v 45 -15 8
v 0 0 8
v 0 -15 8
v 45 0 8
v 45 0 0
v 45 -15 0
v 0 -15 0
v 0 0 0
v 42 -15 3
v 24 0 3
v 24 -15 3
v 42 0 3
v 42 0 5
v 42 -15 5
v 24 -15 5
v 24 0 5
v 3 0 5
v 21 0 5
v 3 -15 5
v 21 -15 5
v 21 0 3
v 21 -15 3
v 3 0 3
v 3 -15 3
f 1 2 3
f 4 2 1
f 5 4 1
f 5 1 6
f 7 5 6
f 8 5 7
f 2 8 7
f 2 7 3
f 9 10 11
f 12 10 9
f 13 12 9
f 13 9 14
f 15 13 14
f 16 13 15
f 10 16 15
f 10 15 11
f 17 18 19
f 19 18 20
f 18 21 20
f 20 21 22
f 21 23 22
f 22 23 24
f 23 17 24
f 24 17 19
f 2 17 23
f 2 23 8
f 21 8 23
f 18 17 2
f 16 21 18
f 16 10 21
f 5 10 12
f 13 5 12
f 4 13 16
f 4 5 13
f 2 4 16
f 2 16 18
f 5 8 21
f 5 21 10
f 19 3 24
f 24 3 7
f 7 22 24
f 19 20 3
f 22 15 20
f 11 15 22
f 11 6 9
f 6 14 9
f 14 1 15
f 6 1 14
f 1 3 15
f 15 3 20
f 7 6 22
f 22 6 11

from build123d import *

# Parameters (mm, degrees)
SKETCH_W   = 45
SKETCH_H   = 8
SKETCH_W_2 = 18
SKETCH_H_2 = 2
PAD_DEPTH  = 15


with BuildPart() as part:
    # Sketch → Pad (new body)
    with BuildSketch(Plane.XZ):
        with Locations((22.5, 4)):
            Rectangle(SKETCH_W, SKETCH_H)
        with Locations((12, 4)):
            Rectangle(SKETCH_W_2, SKETCH_H_2, mode=Mode.SUBTRACT)
        with Locations((33, 4)):
            Rectangle(SKETCH_W_2, SKETCH_H_2, mode=Mode.SUBTRACT)
    extrude(amount=PAD_DEPTH)


solid = part.part
